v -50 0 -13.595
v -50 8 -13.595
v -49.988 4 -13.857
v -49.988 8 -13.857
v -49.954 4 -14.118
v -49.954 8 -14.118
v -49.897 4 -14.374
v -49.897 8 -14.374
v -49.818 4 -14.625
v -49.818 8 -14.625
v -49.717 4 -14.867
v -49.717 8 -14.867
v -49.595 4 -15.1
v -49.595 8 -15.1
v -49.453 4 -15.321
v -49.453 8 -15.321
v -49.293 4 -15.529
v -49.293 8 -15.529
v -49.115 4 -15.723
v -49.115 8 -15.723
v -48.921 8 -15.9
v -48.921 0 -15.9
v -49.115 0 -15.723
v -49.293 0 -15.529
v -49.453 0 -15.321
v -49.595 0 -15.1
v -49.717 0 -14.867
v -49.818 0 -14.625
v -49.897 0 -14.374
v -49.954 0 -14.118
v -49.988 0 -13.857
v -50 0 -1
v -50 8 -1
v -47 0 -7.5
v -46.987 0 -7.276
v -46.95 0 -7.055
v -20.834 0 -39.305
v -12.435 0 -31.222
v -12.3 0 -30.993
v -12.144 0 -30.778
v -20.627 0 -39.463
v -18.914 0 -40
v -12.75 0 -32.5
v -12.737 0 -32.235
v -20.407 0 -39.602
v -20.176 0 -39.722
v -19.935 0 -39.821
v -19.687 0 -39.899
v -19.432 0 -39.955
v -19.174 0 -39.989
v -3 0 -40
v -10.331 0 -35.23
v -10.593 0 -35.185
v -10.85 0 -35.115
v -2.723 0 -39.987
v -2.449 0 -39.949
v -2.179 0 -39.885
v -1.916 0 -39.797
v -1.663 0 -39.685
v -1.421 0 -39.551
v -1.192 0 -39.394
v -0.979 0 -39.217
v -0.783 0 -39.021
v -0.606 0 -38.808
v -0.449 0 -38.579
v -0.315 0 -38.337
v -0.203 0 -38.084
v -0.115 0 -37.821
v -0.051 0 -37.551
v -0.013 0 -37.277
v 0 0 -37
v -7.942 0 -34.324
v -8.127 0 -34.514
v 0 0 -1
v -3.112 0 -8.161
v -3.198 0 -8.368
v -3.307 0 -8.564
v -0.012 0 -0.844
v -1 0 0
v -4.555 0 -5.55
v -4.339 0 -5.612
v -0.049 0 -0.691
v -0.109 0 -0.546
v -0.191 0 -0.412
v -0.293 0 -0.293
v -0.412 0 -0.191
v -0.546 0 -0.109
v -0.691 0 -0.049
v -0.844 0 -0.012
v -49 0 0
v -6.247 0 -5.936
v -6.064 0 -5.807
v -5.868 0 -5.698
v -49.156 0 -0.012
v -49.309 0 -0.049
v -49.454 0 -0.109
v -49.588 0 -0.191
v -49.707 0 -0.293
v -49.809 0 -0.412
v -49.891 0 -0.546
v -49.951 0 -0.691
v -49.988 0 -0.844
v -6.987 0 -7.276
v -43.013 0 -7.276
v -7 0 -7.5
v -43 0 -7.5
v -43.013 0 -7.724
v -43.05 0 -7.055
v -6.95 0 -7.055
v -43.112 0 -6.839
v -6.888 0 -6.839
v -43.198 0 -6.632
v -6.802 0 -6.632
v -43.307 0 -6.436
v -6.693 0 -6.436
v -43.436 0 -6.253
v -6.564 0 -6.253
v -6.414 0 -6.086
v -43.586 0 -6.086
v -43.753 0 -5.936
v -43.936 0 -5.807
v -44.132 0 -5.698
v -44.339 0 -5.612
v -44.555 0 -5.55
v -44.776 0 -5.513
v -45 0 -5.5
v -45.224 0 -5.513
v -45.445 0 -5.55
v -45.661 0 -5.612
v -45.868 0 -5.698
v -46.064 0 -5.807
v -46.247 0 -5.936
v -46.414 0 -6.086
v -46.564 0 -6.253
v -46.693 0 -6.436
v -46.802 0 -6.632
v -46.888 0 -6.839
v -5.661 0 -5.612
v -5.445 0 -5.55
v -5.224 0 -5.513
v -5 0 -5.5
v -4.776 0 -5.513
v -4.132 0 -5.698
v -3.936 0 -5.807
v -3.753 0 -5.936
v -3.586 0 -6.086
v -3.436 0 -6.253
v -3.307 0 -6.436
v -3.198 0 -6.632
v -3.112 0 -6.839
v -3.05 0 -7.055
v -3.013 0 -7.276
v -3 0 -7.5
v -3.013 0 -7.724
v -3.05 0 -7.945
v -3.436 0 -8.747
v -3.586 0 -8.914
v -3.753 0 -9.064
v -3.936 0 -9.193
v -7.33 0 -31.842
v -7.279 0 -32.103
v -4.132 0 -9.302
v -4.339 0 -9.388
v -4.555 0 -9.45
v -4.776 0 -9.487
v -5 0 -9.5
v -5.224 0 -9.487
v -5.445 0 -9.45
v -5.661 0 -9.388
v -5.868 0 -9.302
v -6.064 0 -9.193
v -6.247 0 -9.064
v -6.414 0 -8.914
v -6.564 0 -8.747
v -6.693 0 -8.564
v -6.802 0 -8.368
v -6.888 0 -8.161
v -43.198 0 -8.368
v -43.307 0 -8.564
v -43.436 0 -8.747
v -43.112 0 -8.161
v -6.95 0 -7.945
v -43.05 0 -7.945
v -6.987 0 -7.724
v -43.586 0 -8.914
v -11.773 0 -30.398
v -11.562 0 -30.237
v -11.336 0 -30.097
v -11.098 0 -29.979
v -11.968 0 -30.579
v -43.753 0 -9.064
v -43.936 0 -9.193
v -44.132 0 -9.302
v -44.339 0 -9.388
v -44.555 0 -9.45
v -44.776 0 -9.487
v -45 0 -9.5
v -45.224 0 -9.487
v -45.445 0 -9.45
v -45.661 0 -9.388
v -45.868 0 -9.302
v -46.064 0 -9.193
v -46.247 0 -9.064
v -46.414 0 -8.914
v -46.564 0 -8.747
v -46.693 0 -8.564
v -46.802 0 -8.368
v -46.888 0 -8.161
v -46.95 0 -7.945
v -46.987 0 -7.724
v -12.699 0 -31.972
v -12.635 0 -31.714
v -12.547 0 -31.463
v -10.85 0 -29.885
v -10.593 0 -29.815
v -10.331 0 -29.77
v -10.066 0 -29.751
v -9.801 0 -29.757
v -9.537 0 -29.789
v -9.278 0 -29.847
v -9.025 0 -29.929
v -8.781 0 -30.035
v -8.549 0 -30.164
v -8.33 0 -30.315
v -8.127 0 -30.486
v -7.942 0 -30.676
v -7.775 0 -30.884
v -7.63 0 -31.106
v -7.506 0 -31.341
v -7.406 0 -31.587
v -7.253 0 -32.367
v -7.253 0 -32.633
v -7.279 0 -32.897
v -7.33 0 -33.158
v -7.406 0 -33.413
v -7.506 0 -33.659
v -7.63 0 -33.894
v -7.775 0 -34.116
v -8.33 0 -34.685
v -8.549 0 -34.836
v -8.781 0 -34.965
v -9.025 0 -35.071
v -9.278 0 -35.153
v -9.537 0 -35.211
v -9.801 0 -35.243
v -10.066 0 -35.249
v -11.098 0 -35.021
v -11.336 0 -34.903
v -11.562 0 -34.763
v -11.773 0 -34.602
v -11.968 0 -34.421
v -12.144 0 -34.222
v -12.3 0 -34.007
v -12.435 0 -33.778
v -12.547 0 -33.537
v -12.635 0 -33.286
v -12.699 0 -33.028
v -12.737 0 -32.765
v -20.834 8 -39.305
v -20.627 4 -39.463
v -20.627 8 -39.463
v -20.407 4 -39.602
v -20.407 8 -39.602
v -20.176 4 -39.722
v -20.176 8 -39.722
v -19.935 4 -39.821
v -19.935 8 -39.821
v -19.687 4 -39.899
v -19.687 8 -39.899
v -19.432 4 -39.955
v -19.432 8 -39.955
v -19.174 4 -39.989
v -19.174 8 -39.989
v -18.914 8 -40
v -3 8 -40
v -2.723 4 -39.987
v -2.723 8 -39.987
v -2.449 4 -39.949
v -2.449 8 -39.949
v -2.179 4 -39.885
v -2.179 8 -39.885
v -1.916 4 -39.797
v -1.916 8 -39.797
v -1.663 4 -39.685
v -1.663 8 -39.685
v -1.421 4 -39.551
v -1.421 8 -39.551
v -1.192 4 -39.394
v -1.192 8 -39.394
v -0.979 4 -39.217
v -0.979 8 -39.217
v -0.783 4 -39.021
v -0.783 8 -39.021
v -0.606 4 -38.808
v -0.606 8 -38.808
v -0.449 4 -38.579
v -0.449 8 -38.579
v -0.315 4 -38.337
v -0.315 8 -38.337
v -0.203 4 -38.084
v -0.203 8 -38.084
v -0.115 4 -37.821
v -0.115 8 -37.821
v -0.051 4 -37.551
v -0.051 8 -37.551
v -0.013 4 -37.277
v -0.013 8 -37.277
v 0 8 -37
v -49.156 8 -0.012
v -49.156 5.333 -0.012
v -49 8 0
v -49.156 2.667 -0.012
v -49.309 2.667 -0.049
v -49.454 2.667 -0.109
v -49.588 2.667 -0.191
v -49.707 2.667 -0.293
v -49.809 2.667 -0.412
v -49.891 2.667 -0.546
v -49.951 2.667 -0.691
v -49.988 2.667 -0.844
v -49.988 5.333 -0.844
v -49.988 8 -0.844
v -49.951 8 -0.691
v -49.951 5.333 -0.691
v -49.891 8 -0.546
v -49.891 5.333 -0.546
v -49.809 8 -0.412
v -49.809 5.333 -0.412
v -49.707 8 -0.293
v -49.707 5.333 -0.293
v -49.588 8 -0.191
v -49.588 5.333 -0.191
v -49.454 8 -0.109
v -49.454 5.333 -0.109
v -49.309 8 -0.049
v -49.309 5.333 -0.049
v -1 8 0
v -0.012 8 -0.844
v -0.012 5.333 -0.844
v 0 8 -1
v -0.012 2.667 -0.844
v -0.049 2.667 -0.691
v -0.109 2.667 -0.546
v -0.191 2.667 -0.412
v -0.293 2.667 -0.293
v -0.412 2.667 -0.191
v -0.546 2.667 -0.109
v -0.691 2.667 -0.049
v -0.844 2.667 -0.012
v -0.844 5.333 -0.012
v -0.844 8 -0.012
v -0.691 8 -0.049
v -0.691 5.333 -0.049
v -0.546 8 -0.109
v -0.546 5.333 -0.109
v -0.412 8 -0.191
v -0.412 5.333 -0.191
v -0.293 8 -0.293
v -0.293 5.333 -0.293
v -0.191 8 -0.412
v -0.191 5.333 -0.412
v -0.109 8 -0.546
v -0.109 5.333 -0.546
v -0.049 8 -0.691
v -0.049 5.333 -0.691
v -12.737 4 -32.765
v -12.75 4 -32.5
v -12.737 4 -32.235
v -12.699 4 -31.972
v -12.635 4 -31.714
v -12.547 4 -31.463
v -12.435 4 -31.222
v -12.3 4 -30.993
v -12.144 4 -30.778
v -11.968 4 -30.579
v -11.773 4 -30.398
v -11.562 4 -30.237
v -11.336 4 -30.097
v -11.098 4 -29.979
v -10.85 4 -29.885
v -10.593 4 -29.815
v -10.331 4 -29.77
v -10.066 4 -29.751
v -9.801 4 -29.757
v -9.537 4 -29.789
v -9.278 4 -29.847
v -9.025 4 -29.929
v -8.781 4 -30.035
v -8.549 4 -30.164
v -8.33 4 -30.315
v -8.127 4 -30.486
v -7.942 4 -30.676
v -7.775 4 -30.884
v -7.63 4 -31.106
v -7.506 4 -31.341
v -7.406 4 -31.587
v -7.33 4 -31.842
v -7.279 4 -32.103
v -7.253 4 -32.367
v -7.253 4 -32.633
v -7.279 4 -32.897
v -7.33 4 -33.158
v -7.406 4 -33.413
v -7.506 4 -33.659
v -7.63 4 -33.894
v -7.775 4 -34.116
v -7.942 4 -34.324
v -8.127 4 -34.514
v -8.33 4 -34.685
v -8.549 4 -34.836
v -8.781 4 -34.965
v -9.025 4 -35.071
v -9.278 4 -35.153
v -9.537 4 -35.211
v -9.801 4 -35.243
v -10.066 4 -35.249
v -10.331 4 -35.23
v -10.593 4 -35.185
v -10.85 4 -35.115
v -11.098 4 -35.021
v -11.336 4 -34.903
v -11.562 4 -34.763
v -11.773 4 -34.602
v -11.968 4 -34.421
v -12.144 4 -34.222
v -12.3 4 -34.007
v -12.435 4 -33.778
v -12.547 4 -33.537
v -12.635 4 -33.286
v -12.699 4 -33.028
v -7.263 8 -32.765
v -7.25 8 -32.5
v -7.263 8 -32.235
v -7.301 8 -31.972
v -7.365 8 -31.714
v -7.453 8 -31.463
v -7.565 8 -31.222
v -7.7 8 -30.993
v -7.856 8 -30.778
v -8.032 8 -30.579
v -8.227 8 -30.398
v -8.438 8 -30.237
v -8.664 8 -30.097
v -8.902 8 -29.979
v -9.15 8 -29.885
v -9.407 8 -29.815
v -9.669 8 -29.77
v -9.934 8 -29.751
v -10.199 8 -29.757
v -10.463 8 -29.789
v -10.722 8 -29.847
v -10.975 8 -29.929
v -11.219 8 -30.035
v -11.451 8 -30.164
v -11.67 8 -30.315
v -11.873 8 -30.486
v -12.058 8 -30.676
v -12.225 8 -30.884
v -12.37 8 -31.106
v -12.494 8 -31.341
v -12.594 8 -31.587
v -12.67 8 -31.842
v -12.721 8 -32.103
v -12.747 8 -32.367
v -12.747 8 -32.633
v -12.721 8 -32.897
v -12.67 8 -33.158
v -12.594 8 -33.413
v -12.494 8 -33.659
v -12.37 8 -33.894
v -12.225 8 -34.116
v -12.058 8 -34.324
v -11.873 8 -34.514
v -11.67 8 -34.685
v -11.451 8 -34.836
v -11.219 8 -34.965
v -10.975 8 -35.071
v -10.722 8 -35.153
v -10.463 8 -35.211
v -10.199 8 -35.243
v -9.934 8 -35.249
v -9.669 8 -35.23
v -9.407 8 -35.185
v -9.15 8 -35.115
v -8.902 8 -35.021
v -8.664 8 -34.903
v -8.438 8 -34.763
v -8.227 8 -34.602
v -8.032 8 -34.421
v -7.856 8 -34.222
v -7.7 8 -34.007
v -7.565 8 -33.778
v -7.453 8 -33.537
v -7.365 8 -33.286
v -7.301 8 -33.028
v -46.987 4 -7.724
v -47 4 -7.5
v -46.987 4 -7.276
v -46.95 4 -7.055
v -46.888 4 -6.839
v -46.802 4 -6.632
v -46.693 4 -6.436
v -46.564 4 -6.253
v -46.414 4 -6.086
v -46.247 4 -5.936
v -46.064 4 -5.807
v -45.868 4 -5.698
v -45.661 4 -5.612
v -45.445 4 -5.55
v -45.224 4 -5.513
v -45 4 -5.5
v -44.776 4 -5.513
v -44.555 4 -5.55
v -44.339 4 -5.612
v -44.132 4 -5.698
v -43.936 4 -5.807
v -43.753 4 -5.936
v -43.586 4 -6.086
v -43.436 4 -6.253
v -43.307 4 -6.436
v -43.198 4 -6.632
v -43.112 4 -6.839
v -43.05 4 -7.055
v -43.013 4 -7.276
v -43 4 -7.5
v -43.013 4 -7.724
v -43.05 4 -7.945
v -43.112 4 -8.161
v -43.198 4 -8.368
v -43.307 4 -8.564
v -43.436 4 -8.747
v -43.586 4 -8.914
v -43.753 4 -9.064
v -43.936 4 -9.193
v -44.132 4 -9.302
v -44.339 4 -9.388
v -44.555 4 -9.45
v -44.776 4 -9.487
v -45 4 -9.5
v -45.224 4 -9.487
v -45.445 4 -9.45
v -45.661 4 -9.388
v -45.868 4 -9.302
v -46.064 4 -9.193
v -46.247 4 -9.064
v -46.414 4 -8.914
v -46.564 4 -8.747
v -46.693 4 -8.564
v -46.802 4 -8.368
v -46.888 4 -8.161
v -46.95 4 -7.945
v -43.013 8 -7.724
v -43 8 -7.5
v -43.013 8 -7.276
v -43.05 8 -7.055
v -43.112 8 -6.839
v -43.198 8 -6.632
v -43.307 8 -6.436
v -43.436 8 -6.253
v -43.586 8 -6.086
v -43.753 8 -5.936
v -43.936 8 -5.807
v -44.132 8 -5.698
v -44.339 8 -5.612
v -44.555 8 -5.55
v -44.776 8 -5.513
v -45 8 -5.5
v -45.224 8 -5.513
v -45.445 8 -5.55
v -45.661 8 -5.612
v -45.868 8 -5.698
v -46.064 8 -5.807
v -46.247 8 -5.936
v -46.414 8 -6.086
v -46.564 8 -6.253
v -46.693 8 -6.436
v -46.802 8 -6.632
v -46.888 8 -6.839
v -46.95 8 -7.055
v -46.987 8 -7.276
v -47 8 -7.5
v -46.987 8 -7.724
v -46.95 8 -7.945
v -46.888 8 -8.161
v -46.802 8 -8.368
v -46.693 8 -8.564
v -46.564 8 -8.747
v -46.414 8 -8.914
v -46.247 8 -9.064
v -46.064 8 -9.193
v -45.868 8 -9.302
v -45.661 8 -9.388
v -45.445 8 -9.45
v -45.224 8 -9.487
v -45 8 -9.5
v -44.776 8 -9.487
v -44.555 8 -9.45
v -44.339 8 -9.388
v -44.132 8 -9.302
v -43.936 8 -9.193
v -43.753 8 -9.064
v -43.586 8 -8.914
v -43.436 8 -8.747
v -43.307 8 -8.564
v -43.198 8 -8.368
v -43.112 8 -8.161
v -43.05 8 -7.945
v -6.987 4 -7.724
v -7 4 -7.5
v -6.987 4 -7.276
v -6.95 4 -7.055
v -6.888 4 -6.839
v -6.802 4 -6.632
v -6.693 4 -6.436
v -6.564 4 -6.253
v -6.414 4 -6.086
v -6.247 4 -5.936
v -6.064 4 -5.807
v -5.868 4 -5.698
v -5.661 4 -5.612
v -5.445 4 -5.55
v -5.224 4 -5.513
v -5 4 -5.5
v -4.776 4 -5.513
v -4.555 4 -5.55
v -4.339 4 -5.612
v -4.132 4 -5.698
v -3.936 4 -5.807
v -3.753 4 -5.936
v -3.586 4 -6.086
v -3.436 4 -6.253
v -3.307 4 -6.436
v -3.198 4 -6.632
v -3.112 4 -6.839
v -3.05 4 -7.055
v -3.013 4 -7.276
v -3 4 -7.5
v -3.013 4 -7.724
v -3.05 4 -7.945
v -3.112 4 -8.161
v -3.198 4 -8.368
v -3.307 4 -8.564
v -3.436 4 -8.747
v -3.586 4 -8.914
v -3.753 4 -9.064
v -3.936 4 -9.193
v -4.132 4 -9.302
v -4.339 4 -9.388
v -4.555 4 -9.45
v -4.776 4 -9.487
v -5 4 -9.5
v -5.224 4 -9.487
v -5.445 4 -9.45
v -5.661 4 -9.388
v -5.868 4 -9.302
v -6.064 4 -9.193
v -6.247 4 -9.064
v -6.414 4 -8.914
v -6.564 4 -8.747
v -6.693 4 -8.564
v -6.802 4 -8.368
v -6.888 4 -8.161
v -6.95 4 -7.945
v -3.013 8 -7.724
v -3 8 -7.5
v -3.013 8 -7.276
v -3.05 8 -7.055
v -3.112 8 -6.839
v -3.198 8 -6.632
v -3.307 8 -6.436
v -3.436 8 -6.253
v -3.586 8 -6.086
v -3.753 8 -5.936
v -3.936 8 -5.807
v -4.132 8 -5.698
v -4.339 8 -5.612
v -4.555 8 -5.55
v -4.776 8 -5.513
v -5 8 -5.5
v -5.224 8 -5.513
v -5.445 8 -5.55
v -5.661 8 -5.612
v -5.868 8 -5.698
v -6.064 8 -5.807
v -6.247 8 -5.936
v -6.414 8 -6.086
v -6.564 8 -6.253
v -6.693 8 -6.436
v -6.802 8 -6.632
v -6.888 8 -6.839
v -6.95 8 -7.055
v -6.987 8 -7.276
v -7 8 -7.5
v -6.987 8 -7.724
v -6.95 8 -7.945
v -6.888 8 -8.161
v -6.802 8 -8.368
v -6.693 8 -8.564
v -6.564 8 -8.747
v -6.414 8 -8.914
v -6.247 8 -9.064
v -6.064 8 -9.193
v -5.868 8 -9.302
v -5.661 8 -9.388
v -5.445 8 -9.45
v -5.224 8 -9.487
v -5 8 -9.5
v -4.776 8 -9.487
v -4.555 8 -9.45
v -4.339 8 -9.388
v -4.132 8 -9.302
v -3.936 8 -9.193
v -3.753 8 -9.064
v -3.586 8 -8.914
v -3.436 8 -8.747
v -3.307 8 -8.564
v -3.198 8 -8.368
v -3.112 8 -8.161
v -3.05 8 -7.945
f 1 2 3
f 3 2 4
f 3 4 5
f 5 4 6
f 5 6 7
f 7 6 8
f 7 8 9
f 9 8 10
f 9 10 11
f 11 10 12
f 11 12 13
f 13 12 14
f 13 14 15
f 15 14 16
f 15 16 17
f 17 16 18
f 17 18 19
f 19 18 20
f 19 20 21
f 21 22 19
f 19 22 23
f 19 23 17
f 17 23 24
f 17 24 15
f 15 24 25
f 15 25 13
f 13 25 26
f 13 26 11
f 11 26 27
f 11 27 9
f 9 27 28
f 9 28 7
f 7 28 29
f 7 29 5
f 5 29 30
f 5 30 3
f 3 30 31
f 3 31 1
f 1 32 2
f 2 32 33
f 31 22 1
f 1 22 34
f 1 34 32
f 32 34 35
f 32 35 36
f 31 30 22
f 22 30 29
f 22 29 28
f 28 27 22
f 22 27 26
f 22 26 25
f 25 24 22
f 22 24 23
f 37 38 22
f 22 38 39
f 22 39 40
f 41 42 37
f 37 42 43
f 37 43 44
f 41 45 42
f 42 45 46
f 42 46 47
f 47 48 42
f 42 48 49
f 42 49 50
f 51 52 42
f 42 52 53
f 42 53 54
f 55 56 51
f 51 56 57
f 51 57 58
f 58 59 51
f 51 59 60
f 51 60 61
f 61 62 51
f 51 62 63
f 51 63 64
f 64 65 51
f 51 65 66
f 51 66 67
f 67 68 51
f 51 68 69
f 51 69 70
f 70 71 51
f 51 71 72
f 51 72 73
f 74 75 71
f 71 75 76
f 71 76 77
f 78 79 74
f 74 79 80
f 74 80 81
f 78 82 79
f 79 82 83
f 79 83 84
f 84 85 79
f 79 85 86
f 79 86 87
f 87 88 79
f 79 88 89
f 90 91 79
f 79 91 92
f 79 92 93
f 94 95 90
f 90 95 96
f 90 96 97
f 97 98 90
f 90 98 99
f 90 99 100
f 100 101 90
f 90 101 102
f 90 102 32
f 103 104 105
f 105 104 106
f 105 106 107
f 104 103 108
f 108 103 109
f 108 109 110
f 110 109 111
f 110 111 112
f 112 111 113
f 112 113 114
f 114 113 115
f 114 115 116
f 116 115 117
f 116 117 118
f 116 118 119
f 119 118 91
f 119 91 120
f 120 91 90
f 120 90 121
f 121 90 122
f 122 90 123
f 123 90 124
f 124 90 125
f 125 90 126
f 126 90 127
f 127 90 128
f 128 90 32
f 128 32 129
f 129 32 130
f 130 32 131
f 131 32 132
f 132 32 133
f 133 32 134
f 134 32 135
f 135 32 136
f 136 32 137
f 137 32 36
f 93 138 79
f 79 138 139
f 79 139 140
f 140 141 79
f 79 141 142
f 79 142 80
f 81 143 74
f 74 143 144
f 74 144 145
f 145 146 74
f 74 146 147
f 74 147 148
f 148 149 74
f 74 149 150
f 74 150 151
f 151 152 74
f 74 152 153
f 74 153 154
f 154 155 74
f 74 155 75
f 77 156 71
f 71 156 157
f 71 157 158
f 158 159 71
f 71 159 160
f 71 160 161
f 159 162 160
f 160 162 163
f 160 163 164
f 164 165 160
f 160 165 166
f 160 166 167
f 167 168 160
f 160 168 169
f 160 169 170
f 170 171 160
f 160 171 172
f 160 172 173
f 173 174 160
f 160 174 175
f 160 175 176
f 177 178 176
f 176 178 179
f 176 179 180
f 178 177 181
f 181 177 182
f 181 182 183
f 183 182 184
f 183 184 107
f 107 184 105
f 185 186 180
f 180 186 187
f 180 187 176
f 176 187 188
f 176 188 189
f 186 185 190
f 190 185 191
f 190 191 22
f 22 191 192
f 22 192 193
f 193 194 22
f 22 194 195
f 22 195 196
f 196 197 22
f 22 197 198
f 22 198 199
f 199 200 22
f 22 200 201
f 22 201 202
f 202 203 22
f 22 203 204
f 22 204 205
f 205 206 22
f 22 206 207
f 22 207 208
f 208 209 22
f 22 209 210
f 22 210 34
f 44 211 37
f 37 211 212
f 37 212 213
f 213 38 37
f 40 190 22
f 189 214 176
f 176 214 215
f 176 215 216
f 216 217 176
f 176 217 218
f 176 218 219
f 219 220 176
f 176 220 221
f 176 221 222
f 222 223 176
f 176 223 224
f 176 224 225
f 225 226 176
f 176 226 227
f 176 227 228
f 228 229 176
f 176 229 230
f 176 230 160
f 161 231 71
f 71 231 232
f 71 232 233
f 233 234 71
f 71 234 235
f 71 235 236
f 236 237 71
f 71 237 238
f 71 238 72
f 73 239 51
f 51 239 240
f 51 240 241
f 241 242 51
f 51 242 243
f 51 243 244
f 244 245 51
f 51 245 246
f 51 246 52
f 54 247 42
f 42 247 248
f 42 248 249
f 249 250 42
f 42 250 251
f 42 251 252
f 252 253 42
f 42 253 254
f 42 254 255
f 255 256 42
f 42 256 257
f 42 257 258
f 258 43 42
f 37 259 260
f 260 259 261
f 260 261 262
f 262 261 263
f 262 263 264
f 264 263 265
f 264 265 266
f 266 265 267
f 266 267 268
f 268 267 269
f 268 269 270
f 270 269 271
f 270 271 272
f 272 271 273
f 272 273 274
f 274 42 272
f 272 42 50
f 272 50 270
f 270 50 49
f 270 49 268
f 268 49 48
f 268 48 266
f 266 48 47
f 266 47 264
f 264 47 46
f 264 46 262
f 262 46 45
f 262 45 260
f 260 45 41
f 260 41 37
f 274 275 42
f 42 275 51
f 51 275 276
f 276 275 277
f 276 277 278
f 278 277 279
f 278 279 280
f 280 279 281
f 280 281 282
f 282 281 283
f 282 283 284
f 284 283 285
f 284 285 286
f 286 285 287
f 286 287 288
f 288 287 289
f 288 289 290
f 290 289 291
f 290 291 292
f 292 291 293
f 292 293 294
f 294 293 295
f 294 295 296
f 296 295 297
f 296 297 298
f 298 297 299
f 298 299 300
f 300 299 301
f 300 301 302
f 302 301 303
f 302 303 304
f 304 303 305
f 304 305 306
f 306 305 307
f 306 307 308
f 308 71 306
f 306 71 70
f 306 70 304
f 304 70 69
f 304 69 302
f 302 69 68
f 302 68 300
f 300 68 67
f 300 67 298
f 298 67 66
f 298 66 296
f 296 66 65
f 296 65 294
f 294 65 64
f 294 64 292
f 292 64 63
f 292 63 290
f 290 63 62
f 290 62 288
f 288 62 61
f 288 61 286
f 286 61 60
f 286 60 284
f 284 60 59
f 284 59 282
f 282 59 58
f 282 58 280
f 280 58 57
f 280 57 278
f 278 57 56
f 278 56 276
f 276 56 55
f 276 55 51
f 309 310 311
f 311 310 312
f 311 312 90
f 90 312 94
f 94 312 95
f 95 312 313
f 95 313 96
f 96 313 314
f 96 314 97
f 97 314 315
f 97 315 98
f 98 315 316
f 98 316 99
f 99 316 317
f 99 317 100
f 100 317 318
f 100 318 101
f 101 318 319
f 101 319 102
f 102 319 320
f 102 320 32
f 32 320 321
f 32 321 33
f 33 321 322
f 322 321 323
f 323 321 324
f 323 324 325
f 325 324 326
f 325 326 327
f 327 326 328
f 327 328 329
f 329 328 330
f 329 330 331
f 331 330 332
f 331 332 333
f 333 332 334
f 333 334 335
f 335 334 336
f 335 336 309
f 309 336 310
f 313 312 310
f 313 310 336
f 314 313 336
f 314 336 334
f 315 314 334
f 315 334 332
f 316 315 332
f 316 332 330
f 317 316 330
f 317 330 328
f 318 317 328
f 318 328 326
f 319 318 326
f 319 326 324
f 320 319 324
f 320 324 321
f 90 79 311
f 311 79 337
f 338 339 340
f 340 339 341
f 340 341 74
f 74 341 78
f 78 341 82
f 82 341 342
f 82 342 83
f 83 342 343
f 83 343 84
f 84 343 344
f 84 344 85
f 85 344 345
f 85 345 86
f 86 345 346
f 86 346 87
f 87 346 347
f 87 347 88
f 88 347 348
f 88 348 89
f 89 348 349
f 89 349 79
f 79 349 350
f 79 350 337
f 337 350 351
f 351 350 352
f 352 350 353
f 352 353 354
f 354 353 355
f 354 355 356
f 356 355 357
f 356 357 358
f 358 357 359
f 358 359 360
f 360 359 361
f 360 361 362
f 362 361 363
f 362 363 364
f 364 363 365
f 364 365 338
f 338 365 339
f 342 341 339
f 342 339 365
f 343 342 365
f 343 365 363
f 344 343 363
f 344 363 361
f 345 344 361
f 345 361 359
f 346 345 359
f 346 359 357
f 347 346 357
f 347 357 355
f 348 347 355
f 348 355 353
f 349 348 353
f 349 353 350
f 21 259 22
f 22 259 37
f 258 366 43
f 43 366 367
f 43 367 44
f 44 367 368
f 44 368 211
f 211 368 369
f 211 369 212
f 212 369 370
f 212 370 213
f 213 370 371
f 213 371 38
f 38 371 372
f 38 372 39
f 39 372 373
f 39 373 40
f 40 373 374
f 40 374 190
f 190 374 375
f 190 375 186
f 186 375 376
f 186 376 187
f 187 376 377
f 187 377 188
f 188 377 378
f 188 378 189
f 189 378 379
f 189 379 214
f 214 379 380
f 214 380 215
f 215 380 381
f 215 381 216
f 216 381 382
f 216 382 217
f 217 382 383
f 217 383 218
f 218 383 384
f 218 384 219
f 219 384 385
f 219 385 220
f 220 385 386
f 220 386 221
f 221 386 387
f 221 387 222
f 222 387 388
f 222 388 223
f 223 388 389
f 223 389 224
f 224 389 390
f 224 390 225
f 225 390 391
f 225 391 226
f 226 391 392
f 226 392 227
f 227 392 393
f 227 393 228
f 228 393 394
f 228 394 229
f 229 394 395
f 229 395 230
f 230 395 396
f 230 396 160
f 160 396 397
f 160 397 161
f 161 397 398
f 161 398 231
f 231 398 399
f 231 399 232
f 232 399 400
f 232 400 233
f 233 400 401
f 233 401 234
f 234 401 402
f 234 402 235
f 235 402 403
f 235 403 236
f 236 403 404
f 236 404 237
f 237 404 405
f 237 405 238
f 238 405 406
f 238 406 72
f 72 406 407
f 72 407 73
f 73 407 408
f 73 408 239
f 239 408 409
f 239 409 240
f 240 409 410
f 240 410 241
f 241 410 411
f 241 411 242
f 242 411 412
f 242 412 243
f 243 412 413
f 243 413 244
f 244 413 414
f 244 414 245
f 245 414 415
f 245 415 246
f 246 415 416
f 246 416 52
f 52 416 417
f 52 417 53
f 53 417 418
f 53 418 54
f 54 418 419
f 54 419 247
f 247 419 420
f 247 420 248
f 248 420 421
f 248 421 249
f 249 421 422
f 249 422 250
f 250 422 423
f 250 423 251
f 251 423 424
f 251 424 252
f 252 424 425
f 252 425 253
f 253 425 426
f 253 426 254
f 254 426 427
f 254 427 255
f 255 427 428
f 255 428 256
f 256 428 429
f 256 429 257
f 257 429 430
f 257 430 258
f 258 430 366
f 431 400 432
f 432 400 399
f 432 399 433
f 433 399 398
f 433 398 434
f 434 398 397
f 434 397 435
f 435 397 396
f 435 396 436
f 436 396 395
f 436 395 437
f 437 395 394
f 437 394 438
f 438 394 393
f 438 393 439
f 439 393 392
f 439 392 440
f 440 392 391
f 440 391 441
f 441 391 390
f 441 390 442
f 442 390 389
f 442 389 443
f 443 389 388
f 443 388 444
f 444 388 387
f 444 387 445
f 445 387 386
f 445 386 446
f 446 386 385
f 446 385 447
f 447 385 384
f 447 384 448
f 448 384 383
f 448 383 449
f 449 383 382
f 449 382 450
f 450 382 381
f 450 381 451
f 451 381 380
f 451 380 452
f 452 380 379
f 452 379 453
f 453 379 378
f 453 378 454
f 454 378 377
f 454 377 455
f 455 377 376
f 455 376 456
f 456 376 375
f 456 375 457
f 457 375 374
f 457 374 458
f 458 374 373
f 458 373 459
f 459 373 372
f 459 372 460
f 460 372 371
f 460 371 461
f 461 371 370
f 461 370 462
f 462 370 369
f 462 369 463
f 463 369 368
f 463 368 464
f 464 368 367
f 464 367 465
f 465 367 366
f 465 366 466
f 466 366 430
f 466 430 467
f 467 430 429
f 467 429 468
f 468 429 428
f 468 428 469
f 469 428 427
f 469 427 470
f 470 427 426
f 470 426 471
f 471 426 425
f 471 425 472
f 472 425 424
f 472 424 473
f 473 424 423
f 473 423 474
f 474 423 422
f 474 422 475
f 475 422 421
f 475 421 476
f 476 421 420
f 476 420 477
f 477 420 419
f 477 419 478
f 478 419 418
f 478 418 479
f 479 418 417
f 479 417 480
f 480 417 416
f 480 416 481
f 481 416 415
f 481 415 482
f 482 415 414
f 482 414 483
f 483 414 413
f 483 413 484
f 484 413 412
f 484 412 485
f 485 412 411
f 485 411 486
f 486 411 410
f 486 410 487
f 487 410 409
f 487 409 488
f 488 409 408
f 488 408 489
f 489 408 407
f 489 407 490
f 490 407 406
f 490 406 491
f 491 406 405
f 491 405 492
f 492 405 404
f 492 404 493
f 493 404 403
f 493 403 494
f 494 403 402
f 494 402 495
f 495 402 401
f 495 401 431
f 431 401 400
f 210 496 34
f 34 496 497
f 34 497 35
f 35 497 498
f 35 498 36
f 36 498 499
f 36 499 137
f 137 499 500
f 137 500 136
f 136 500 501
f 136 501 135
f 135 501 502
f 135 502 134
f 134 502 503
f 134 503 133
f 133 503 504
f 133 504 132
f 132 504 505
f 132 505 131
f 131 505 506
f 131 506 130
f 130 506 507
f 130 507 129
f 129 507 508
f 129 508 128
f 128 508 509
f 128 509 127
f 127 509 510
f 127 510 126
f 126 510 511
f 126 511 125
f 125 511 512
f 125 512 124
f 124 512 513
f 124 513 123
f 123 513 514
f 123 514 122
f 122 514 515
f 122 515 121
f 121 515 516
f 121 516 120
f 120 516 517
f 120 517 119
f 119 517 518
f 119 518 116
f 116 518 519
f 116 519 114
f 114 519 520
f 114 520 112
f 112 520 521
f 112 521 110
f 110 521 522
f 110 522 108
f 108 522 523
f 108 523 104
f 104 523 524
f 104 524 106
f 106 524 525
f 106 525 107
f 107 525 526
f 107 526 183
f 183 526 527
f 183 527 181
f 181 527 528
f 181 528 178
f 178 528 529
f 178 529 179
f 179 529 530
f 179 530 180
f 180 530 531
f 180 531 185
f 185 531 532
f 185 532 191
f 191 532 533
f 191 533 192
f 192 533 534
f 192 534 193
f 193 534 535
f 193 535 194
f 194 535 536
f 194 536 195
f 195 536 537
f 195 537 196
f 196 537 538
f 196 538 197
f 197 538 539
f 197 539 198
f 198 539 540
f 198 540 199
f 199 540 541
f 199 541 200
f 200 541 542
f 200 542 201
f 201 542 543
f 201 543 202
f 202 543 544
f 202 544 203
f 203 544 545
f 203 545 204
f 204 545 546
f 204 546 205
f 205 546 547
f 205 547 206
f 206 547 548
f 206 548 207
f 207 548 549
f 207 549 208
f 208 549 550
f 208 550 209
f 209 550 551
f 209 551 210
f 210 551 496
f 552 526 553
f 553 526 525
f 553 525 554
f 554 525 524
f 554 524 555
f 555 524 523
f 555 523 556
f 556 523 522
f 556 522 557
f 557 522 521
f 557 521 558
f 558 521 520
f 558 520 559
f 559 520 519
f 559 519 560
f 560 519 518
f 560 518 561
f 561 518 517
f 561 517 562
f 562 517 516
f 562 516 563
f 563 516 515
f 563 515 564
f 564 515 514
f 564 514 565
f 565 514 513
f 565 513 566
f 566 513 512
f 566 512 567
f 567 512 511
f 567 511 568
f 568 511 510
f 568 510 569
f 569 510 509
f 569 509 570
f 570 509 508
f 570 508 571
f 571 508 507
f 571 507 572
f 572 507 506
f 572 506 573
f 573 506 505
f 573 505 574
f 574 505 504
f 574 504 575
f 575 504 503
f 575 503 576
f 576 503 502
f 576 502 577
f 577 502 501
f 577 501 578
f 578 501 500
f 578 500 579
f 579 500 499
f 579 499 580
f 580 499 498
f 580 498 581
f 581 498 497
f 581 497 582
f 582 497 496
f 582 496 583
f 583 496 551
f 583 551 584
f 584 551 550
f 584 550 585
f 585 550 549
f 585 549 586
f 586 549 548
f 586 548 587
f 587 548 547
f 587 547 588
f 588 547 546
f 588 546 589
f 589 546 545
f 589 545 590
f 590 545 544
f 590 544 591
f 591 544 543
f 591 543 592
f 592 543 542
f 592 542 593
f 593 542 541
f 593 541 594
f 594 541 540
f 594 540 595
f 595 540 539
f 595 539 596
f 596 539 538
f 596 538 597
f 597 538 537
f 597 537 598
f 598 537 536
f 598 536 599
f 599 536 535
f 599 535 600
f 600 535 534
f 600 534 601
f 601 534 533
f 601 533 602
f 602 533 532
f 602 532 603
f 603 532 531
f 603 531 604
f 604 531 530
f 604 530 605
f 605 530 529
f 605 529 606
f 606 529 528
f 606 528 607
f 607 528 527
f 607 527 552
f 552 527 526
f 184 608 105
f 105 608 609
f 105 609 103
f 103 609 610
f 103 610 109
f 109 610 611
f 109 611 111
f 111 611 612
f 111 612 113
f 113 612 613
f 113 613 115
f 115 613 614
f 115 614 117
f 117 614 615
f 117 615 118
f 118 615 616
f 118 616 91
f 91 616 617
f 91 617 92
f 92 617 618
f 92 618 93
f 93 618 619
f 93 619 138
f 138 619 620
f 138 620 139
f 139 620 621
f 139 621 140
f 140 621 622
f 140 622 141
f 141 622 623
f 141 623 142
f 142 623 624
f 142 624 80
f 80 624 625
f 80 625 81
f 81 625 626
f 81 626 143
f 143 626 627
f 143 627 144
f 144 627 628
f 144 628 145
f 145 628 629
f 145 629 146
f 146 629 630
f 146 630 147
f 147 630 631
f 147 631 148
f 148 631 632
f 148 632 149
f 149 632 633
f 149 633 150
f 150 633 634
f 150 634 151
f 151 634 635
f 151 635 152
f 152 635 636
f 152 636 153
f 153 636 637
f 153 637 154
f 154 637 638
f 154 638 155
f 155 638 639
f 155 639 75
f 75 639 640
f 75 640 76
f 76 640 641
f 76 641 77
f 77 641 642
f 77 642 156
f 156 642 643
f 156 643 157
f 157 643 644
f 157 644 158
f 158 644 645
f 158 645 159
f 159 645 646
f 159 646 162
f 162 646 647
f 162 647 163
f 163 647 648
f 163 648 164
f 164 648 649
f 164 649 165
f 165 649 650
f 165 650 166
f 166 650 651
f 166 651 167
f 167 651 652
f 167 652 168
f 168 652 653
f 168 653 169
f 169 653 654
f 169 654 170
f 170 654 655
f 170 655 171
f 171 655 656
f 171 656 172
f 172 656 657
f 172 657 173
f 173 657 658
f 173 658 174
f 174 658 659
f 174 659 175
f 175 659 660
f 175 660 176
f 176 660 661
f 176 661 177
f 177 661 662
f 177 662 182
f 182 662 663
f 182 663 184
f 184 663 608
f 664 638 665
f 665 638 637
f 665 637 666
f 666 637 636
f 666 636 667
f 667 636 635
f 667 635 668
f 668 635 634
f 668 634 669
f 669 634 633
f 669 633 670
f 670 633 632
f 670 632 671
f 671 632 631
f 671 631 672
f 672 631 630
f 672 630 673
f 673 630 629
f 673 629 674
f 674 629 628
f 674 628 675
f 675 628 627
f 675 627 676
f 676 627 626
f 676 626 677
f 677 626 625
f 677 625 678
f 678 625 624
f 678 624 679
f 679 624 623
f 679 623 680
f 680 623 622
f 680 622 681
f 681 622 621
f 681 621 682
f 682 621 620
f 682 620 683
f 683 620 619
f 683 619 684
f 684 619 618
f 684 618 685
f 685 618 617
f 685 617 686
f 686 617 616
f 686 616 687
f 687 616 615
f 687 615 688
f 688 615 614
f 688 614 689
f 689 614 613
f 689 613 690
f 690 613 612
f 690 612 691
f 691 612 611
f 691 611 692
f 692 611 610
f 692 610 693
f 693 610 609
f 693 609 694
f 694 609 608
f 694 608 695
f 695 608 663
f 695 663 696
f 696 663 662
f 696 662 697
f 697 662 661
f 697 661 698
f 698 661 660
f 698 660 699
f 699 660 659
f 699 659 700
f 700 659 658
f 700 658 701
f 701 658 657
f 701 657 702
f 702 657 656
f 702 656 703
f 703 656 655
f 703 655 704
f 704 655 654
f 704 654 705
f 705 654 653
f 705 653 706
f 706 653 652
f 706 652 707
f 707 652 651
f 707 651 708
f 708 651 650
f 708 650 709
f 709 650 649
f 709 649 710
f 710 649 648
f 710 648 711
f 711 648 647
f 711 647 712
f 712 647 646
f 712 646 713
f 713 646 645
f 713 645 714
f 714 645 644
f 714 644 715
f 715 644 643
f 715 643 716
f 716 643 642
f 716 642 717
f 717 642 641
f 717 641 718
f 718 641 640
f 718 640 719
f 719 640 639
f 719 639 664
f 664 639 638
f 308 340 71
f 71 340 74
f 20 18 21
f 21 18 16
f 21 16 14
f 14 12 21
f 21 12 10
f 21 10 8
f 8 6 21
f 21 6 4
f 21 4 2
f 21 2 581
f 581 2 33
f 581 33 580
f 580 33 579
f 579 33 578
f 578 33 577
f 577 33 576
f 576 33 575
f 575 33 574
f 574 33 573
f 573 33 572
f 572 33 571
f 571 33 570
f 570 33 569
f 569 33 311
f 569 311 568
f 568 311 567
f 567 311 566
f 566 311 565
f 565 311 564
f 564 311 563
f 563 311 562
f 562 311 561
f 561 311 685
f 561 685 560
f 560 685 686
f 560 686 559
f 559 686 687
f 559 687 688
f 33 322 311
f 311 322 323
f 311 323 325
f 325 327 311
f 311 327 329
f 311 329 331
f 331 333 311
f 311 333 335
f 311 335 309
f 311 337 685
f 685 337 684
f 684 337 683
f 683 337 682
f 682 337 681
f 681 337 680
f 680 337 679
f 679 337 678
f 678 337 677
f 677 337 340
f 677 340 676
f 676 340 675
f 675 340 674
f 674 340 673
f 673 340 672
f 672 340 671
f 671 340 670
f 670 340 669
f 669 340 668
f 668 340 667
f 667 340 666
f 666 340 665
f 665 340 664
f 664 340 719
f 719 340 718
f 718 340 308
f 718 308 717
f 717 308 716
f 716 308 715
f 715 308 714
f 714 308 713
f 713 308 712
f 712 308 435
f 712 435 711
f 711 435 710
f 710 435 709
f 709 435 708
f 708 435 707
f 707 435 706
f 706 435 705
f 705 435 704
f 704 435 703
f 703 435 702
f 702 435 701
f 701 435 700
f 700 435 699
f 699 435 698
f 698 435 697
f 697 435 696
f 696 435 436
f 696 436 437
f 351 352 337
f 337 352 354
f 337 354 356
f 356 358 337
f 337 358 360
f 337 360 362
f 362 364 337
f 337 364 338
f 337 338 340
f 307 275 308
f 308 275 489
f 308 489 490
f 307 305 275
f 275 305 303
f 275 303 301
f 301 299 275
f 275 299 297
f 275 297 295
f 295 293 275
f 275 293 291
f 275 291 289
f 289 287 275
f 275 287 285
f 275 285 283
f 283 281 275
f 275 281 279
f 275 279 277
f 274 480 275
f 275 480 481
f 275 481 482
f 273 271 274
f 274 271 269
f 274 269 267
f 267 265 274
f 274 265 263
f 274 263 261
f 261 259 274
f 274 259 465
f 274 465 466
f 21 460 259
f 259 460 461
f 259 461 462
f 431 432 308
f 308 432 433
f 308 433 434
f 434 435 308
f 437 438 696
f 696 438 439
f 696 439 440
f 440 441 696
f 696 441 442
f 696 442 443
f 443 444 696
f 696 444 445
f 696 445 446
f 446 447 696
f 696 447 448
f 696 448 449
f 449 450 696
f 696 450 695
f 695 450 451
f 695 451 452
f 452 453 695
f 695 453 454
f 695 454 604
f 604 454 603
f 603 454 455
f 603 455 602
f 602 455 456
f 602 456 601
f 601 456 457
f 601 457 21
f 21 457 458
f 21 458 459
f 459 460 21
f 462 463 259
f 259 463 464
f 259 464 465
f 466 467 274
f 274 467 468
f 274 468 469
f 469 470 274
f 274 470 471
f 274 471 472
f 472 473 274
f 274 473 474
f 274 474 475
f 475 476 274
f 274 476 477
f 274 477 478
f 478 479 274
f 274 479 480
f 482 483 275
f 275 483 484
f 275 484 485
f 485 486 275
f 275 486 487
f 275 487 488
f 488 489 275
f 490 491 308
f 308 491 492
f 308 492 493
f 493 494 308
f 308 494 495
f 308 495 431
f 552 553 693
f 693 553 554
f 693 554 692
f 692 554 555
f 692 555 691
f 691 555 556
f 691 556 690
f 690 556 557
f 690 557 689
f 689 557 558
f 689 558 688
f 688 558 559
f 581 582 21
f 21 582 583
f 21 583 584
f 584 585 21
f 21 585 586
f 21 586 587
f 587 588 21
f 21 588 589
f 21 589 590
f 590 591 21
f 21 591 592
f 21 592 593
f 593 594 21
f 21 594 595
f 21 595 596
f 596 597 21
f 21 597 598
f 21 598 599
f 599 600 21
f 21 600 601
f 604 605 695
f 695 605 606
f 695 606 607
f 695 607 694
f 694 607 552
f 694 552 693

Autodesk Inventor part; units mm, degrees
ref_plane "YZ Plane" through (0, 0, 0) normal (1, 0, 0) x (0, 1, 0)
ref_plane "XZ Plane" through (0, 0, 0) normal (0, 1, 0) x (-1, 0, 0)
ref_plane "XY Plane" through (0, 0, 0) normal (0, 0, 1) x (1, 0, 0)
sketch "Skizze1" plane through (0, 0, 0) normal (0, 1, 0) x (-1, 0, 0)
  line L0 (0, -48) -> (0, 8) projected
  line L1 (-10, 0) -> (60, 0) projected
  line L2 (12.9651, 0) -> (0, 0)
  line L3 (0, 0) -> (0, -40)
  line L4 (0, -40) -> (20, -40)
  line L5 (20, -40) -> (20, -15)
  line L6 (20, -15) -> (50, -15)
  line L7 (50, -15) -> (50, 0)
  line L8 (50, 0) -> (12.9651, 0)
  dimension "d0" = 40
  dimension "d1" = 15
  dimension "d2" = 50
  dimension "d5" = 20
extrude "Extrusion1" add sketch "Skizze1" along normal blind 8
sketch "Skizze2" plane through (0, 8, 0) normal (0, 1, 0) x (1, 0, 0)
  line L0 (-50, 15) -> (-50, 0) construction
  line L1 (-50, 7.5) -> (0, 7.5) construction
  line L2 (0, 0) -> (0, 40) construction
  point P0 (-45, 7.5)
  point P1 (-5, 7.5)
  dimension "d8" = 40
  dimension "d9" = 5
hole "Bohrung1" at (-45, 8, -7.5) at (-5, 8, -7.5) direction (0, -1, 0) diameter 4 end through all
sketch "Skizze3" plane through (0, 8, 0) normal (0, 1, 0) x (1, 0, 0)
  line L0 (0, 40) -> (-20, 40) construction
  line L1 (-10, 40) -> (-10, 0) construction
  line L2 (-50, 0) -> (0, 0) construction
  line L3 (-20, 40) -> (-20, 15) construction
  point P0 (-10, 32.5)
  dimension "d24" = 7.5
hole "Bohrung2" at (-10, 8, -32.5) direction (0, -1, 0) diameter 5.5 end through all clearance for "Inbusschraube ISO 4762" size "M5" standard "ISO"
sketch "Skizze4" plane through (0, 8, 0) normal (0, 1, 0) x (1, 0, 0)
  line L0 (0, 40) -> (-20, 40) projected
  line L1 (-50, 15) -> (-50, 0) projected
  line L2 (-20, 40) -> (-50, 15)
  line L3 (-50, 15) -> (-20, 15)
  line L4 (-20, 40) -> (-20, 15) projected
  line L5 (-20, 15) -> (-20, 40)
  point P0 (0, 0)
extrude "Extrusion2" add sketch "Skizze4" against normal up to surface (8 mm away)
fillet "Rundung2" radius 1 2 edges at (0, 4, 0) (-50, 4, 0)
fillet "Rundung3" radius 3 3 edges at (0, 4, -40) (-20, 4, -40) (-50, 4, -15)
properties part number "21_X_Pulley_holder" material "PET-Kunststoff"
